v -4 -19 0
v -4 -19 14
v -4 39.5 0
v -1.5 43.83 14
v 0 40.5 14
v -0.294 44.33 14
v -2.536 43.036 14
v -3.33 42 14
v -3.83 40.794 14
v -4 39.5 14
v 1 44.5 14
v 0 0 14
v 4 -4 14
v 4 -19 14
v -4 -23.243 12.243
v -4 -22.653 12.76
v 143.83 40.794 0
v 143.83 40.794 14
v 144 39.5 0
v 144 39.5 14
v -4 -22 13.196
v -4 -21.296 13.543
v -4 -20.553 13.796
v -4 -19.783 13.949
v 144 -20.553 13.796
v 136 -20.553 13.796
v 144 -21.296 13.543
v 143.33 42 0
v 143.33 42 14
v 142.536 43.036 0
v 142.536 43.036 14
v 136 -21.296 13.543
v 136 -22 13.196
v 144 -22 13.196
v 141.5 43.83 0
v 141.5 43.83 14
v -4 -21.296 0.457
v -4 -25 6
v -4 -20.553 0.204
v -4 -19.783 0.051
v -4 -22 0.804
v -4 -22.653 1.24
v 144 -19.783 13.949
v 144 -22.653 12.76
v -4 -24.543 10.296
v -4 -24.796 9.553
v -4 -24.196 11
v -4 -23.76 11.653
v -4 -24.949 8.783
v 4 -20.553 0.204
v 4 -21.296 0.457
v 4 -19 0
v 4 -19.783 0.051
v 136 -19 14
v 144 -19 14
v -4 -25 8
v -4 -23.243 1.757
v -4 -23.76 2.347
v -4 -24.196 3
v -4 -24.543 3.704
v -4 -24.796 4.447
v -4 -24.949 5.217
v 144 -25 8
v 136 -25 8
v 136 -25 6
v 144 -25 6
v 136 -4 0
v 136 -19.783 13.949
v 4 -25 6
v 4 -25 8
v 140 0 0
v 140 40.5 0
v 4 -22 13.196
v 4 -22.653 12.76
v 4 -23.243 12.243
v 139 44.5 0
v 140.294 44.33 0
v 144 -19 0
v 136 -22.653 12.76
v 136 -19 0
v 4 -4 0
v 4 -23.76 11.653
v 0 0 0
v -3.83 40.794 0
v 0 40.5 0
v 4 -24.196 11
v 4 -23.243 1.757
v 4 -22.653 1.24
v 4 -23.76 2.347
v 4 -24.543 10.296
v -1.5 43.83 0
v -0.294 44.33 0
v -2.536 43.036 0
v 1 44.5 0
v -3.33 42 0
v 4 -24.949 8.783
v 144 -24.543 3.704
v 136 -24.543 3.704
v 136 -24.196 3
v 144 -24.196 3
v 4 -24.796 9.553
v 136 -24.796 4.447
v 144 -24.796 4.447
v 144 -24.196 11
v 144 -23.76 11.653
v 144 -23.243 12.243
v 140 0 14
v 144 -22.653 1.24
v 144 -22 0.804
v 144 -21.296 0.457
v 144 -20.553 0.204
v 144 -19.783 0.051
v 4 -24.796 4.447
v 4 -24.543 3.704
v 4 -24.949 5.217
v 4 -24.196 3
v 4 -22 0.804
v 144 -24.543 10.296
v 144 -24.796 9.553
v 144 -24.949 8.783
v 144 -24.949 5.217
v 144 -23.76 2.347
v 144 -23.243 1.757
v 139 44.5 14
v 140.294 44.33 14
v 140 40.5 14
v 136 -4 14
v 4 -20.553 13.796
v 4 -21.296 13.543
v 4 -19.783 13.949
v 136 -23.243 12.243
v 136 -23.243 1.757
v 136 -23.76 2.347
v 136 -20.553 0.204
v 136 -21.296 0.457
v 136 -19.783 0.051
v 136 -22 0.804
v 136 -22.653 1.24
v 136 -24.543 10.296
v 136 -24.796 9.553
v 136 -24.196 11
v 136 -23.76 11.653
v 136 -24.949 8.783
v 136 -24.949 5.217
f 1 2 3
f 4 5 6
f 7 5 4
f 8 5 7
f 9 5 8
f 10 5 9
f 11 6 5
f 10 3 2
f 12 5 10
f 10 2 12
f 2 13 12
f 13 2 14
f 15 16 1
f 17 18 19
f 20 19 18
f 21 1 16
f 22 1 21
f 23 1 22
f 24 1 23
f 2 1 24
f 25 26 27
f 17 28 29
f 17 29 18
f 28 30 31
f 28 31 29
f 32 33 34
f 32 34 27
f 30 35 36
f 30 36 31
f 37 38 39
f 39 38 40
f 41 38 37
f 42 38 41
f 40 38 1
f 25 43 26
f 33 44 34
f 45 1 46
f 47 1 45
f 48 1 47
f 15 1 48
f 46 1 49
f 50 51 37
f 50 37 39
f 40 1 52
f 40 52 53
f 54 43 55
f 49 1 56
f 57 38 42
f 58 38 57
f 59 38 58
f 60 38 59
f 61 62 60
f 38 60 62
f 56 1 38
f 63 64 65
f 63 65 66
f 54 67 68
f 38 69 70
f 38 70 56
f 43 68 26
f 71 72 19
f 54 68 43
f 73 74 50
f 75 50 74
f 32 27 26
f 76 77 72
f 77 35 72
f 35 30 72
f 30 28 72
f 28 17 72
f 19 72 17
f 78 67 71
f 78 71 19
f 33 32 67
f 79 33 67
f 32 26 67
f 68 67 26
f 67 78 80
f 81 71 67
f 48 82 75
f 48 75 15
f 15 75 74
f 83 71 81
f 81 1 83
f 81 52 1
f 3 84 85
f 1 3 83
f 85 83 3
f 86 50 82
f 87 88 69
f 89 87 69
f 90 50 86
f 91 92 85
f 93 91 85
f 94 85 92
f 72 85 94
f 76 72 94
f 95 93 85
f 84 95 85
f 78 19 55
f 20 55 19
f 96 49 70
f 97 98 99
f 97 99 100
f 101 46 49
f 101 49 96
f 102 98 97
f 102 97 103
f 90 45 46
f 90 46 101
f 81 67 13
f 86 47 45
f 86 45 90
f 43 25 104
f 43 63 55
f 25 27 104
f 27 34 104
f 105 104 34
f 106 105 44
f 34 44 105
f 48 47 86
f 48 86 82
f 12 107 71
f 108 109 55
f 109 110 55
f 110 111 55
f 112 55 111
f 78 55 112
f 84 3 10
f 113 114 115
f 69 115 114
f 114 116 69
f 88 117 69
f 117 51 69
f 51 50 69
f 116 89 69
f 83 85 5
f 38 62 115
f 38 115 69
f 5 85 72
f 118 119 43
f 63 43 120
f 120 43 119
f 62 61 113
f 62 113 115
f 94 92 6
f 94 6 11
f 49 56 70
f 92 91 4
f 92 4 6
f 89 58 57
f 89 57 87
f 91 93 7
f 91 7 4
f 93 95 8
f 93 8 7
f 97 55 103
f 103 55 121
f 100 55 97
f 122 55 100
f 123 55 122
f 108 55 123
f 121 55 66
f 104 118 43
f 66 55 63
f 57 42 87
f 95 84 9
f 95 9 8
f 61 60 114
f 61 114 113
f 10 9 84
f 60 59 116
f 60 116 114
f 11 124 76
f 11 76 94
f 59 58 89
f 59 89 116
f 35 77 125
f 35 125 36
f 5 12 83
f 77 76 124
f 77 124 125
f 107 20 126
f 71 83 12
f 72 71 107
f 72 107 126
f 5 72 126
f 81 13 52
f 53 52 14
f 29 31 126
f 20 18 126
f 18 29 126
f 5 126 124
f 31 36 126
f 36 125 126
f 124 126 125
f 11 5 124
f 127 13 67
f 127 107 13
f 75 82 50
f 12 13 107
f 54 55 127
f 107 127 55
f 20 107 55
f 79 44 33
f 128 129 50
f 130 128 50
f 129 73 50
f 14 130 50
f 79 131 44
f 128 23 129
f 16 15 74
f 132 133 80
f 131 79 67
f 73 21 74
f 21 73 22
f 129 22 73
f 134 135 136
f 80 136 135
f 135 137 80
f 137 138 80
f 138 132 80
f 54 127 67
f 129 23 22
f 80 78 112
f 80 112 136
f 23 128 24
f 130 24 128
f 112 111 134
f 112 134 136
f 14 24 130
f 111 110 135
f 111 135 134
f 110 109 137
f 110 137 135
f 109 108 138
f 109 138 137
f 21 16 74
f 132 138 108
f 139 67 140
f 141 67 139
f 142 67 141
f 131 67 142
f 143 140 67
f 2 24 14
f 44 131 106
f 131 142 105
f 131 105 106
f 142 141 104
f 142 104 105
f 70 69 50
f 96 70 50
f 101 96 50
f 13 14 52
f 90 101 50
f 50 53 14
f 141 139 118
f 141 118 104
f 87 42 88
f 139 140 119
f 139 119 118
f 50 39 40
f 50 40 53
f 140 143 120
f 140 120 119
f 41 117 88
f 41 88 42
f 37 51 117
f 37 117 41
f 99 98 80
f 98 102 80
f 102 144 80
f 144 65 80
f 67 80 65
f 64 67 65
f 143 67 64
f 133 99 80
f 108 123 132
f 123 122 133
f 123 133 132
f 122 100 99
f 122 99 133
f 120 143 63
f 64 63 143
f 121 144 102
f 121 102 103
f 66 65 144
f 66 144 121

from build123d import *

# Parameters (mm, degrees)
SKETCH_W    = 140
SKETCH_H    = 40.5
PAD_DEPTH   = 14
FILLET_R    = 6
FILLET001_R = 6
FILLET002_R = 5


with BuildPart() as part:
    # Sketch → Pad (new body)
    with BuildSketch(Plane.XY):
        Polygon((-4, 44.5), (144, 44.5), (144, -25), (136, -25), (136, -4), (4, -4), (4, -25), (-4, -25), align=None)
        with Locations((70, 20.25)):
            Rectangle(SKETCH_W, SKETCH_H, mode=Mode.SUBTRACT)
    extrude(amount=PAD_DEPTH)

    # Fillet
    fillet_edges = [part.edges().sort_by_distance(p)[0] for p in [
        (0, -25, 14),
        (0, -25, 0),
    ]]
    fillet(fillet_edges, radius=FILLET_R)

    # Fillet001
    fillet001_edges = [part.edges().sort_by_distance(p)[0] for p in [
        (140, -25, 0),
        (140, -25, 14),
    ]]
    fillet(fillet001_edges, radius=FILLET001_R)

    # Fillet002
    fillet002_edges = [part.edges().sort_by_distance(p)[0] for p in [
        (-4, 44.5, 7),
        (144, 44.5, 7),
    ]]
    fillet(fillet002_edges, radius=FILLET002_R)


solid = part.part
